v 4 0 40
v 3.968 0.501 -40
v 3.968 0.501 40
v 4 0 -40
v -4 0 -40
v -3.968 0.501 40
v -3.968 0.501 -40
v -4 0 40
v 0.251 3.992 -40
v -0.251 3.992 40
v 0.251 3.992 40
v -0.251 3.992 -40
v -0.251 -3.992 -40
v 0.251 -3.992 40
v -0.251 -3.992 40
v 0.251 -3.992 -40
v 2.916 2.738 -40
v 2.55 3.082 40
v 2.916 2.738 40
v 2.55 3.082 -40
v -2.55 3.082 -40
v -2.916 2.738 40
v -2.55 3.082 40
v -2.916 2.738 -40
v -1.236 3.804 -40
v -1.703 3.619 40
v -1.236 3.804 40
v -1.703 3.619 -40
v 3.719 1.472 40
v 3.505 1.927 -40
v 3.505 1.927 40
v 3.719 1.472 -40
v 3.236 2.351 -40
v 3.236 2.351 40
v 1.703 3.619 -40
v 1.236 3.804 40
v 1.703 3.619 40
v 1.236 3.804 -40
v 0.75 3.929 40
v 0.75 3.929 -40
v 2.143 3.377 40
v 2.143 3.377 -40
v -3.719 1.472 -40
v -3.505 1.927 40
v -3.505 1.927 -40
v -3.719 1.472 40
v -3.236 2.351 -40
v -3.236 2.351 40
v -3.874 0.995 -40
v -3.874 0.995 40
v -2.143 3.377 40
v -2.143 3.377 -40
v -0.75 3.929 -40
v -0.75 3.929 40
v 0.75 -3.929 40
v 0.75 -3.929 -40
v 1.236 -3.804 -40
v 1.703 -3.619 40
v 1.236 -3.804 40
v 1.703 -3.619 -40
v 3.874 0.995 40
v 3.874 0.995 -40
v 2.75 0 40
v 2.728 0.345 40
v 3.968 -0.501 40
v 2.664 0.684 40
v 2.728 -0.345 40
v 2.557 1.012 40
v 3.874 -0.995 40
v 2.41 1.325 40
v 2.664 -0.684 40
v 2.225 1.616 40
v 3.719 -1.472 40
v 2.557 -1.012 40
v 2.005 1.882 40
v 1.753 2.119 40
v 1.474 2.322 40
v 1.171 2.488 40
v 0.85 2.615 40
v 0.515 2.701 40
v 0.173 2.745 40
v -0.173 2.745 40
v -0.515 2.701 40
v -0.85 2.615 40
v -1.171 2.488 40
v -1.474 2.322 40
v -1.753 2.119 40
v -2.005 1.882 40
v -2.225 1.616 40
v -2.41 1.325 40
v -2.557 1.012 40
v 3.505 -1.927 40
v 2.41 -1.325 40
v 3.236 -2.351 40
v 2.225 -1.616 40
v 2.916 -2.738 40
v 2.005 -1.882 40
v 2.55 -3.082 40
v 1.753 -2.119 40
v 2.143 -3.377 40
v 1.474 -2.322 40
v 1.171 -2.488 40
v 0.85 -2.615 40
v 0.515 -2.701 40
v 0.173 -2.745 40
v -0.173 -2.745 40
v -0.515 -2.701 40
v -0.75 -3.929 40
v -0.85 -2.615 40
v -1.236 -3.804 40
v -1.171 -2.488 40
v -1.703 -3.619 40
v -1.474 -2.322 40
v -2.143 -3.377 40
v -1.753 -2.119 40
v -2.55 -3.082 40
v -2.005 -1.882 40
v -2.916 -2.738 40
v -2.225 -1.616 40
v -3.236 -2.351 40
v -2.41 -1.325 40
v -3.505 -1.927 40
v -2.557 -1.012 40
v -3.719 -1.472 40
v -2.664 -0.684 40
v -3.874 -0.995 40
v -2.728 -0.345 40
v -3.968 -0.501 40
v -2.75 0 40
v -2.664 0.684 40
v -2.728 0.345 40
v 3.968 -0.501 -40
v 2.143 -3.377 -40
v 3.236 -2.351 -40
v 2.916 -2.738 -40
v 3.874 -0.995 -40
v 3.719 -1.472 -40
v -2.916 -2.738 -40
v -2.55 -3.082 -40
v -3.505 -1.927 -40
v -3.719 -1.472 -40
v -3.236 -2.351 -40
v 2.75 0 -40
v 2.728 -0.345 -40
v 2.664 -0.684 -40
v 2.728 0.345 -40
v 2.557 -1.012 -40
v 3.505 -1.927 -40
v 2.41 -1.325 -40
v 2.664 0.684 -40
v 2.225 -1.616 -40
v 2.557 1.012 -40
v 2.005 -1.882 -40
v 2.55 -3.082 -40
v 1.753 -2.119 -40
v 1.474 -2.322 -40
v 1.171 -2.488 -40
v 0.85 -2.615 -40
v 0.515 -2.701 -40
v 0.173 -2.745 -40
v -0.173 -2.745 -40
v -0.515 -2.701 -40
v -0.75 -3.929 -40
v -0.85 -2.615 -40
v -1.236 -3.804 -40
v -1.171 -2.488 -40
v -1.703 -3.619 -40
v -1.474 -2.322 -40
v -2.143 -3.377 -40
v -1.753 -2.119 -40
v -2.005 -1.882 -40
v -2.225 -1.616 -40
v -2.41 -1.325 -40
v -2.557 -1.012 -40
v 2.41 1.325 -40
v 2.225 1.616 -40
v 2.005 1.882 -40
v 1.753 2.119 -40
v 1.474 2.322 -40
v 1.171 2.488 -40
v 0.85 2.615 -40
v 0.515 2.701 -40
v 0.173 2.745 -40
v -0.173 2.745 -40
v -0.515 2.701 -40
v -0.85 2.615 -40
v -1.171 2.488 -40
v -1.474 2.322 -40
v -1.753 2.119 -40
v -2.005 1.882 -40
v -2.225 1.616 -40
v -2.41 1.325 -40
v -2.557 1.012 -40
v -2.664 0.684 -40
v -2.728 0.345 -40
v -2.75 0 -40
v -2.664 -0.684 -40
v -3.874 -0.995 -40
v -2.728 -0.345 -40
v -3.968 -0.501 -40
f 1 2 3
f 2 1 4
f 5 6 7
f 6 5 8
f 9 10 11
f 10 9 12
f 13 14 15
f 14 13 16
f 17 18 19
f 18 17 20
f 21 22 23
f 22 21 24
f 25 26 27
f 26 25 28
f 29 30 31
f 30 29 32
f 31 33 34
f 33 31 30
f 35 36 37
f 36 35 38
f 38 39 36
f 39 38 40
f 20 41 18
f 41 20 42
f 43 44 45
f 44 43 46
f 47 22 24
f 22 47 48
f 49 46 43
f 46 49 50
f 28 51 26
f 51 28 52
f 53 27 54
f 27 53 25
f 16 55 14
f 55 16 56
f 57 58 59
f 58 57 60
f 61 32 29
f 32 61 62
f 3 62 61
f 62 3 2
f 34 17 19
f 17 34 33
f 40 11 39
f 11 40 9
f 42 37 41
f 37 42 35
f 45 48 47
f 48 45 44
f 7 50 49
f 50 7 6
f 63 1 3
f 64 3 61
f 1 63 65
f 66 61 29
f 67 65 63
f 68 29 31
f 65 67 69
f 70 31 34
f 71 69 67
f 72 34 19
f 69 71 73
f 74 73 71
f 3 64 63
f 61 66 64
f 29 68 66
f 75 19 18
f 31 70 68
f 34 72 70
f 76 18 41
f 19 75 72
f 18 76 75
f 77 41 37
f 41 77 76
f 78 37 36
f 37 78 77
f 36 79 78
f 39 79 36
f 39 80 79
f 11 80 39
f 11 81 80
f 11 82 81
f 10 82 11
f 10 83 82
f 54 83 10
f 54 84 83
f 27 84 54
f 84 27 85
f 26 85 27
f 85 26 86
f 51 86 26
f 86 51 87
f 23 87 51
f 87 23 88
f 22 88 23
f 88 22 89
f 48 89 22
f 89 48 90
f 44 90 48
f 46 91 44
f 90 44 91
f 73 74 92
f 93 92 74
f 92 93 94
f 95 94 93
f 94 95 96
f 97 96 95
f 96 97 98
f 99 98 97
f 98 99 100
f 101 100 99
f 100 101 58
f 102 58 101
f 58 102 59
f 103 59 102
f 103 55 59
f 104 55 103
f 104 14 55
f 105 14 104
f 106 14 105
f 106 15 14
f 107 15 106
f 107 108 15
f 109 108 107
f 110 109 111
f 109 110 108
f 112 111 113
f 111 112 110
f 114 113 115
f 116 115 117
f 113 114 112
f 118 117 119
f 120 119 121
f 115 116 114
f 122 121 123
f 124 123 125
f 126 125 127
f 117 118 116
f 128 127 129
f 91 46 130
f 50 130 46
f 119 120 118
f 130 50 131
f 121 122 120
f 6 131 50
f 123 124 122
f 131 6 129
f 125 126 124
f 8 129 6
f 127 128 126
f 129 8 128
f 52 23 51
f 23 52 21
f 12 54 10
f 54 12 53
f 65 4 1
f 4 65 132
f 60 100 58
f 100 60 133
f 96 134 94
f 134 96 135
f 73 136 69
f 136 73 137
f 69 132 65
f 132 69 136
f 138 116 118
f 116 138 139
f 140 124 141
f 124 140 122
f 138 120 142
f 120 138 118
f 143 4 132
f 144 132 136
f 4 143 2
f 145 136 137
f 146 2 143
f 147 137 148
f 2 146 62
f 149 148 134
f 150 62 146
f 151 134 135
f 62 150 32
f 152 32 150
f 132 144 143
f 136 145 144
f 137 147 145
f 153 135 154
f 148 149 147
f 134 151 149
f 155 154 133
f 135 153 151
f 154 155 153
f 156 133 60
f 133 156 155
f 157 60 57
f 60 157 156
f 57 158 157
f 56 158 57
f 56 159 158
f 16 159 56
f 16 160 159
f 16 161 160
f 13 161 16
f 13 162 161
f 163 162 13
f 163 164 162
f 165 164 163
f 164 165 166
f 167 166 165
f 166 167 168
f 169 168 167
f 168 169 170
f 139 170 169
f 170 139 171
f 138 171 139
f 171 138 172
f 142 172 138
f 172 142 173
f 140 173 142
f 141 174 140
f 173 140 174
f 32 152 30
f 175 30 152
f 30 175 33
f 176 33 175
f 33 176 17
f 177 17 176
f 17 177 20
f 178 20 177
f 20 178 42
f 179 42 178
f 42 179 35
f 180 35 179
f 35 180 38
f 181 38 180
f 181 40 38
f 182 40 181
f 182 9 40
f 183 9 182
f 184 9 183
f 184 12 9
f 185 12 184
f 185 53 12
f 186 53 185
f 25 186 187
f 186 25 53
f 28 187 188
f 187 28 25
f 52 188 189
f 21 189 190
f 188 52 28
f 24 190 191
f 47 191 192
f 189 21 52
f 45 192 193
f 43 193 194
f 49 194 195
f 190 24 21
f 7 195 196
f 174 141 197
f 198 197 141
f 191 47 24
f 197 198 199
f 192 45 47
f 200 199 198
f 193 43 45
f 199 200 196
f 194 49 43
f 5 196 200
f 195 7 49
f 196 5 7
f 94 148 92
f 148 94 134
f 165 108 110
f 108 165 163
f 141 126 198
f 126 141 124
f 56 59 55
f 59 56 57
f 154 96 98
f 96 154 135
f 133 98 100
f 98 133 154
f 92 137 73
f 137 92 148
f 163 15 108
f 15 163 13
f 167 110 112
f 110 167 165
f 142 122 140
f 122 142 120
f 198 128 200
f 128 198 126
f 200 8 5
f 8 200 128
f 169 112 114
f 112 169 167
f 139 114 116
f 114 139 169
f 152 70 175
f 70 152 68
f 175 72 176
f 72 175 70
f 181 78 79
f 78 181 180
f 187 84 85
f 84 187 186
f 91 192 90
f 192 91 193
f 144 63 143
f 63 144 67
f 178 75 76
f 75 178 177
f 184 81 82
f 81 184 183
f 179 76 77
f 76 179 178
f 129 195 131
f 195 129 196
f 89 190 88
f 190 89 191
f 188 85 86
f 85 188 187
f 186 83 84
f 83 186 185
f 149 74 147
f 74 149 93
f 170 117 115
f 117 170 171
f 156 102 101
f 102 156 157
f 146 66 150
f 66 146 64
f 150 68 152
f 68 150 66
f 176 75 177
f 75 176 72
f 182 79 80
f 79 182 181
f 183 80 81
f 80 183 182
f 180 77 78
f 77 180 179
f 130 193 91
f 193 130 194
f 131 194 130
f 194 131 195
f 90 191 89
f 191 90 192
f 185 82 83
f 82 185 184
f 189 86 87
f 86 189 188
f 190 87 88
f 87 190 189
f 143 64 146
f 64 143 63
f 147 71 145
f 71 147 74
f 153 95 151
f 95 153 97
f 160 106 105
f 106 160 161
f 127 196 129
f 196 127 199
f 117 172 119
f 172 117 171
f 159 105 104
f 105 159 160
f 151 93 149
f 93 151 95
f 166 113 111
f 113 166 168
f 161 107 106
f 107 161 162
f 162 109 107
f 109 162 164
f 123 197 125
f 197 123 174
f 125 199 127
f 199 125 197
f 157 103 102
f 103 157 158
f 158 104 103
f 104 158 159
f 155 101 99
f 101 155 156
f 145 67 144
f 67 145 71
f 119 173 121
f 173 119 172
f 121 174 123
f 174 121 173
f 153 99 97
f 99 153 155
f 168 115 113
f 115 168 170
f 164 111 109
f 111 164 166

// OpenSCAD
$fn = 50;


difference() {
	union() {
		translate(v = [0, 0, -40.0000000000]) {
			cylinder(h = 80, r = 4.0000000000);
		}
	}
	union() {
		translate(v = [0, 0, -100.0000000000]) {
			cylinder(h = 200, r = 2.7500000000);
		}
	}
}
